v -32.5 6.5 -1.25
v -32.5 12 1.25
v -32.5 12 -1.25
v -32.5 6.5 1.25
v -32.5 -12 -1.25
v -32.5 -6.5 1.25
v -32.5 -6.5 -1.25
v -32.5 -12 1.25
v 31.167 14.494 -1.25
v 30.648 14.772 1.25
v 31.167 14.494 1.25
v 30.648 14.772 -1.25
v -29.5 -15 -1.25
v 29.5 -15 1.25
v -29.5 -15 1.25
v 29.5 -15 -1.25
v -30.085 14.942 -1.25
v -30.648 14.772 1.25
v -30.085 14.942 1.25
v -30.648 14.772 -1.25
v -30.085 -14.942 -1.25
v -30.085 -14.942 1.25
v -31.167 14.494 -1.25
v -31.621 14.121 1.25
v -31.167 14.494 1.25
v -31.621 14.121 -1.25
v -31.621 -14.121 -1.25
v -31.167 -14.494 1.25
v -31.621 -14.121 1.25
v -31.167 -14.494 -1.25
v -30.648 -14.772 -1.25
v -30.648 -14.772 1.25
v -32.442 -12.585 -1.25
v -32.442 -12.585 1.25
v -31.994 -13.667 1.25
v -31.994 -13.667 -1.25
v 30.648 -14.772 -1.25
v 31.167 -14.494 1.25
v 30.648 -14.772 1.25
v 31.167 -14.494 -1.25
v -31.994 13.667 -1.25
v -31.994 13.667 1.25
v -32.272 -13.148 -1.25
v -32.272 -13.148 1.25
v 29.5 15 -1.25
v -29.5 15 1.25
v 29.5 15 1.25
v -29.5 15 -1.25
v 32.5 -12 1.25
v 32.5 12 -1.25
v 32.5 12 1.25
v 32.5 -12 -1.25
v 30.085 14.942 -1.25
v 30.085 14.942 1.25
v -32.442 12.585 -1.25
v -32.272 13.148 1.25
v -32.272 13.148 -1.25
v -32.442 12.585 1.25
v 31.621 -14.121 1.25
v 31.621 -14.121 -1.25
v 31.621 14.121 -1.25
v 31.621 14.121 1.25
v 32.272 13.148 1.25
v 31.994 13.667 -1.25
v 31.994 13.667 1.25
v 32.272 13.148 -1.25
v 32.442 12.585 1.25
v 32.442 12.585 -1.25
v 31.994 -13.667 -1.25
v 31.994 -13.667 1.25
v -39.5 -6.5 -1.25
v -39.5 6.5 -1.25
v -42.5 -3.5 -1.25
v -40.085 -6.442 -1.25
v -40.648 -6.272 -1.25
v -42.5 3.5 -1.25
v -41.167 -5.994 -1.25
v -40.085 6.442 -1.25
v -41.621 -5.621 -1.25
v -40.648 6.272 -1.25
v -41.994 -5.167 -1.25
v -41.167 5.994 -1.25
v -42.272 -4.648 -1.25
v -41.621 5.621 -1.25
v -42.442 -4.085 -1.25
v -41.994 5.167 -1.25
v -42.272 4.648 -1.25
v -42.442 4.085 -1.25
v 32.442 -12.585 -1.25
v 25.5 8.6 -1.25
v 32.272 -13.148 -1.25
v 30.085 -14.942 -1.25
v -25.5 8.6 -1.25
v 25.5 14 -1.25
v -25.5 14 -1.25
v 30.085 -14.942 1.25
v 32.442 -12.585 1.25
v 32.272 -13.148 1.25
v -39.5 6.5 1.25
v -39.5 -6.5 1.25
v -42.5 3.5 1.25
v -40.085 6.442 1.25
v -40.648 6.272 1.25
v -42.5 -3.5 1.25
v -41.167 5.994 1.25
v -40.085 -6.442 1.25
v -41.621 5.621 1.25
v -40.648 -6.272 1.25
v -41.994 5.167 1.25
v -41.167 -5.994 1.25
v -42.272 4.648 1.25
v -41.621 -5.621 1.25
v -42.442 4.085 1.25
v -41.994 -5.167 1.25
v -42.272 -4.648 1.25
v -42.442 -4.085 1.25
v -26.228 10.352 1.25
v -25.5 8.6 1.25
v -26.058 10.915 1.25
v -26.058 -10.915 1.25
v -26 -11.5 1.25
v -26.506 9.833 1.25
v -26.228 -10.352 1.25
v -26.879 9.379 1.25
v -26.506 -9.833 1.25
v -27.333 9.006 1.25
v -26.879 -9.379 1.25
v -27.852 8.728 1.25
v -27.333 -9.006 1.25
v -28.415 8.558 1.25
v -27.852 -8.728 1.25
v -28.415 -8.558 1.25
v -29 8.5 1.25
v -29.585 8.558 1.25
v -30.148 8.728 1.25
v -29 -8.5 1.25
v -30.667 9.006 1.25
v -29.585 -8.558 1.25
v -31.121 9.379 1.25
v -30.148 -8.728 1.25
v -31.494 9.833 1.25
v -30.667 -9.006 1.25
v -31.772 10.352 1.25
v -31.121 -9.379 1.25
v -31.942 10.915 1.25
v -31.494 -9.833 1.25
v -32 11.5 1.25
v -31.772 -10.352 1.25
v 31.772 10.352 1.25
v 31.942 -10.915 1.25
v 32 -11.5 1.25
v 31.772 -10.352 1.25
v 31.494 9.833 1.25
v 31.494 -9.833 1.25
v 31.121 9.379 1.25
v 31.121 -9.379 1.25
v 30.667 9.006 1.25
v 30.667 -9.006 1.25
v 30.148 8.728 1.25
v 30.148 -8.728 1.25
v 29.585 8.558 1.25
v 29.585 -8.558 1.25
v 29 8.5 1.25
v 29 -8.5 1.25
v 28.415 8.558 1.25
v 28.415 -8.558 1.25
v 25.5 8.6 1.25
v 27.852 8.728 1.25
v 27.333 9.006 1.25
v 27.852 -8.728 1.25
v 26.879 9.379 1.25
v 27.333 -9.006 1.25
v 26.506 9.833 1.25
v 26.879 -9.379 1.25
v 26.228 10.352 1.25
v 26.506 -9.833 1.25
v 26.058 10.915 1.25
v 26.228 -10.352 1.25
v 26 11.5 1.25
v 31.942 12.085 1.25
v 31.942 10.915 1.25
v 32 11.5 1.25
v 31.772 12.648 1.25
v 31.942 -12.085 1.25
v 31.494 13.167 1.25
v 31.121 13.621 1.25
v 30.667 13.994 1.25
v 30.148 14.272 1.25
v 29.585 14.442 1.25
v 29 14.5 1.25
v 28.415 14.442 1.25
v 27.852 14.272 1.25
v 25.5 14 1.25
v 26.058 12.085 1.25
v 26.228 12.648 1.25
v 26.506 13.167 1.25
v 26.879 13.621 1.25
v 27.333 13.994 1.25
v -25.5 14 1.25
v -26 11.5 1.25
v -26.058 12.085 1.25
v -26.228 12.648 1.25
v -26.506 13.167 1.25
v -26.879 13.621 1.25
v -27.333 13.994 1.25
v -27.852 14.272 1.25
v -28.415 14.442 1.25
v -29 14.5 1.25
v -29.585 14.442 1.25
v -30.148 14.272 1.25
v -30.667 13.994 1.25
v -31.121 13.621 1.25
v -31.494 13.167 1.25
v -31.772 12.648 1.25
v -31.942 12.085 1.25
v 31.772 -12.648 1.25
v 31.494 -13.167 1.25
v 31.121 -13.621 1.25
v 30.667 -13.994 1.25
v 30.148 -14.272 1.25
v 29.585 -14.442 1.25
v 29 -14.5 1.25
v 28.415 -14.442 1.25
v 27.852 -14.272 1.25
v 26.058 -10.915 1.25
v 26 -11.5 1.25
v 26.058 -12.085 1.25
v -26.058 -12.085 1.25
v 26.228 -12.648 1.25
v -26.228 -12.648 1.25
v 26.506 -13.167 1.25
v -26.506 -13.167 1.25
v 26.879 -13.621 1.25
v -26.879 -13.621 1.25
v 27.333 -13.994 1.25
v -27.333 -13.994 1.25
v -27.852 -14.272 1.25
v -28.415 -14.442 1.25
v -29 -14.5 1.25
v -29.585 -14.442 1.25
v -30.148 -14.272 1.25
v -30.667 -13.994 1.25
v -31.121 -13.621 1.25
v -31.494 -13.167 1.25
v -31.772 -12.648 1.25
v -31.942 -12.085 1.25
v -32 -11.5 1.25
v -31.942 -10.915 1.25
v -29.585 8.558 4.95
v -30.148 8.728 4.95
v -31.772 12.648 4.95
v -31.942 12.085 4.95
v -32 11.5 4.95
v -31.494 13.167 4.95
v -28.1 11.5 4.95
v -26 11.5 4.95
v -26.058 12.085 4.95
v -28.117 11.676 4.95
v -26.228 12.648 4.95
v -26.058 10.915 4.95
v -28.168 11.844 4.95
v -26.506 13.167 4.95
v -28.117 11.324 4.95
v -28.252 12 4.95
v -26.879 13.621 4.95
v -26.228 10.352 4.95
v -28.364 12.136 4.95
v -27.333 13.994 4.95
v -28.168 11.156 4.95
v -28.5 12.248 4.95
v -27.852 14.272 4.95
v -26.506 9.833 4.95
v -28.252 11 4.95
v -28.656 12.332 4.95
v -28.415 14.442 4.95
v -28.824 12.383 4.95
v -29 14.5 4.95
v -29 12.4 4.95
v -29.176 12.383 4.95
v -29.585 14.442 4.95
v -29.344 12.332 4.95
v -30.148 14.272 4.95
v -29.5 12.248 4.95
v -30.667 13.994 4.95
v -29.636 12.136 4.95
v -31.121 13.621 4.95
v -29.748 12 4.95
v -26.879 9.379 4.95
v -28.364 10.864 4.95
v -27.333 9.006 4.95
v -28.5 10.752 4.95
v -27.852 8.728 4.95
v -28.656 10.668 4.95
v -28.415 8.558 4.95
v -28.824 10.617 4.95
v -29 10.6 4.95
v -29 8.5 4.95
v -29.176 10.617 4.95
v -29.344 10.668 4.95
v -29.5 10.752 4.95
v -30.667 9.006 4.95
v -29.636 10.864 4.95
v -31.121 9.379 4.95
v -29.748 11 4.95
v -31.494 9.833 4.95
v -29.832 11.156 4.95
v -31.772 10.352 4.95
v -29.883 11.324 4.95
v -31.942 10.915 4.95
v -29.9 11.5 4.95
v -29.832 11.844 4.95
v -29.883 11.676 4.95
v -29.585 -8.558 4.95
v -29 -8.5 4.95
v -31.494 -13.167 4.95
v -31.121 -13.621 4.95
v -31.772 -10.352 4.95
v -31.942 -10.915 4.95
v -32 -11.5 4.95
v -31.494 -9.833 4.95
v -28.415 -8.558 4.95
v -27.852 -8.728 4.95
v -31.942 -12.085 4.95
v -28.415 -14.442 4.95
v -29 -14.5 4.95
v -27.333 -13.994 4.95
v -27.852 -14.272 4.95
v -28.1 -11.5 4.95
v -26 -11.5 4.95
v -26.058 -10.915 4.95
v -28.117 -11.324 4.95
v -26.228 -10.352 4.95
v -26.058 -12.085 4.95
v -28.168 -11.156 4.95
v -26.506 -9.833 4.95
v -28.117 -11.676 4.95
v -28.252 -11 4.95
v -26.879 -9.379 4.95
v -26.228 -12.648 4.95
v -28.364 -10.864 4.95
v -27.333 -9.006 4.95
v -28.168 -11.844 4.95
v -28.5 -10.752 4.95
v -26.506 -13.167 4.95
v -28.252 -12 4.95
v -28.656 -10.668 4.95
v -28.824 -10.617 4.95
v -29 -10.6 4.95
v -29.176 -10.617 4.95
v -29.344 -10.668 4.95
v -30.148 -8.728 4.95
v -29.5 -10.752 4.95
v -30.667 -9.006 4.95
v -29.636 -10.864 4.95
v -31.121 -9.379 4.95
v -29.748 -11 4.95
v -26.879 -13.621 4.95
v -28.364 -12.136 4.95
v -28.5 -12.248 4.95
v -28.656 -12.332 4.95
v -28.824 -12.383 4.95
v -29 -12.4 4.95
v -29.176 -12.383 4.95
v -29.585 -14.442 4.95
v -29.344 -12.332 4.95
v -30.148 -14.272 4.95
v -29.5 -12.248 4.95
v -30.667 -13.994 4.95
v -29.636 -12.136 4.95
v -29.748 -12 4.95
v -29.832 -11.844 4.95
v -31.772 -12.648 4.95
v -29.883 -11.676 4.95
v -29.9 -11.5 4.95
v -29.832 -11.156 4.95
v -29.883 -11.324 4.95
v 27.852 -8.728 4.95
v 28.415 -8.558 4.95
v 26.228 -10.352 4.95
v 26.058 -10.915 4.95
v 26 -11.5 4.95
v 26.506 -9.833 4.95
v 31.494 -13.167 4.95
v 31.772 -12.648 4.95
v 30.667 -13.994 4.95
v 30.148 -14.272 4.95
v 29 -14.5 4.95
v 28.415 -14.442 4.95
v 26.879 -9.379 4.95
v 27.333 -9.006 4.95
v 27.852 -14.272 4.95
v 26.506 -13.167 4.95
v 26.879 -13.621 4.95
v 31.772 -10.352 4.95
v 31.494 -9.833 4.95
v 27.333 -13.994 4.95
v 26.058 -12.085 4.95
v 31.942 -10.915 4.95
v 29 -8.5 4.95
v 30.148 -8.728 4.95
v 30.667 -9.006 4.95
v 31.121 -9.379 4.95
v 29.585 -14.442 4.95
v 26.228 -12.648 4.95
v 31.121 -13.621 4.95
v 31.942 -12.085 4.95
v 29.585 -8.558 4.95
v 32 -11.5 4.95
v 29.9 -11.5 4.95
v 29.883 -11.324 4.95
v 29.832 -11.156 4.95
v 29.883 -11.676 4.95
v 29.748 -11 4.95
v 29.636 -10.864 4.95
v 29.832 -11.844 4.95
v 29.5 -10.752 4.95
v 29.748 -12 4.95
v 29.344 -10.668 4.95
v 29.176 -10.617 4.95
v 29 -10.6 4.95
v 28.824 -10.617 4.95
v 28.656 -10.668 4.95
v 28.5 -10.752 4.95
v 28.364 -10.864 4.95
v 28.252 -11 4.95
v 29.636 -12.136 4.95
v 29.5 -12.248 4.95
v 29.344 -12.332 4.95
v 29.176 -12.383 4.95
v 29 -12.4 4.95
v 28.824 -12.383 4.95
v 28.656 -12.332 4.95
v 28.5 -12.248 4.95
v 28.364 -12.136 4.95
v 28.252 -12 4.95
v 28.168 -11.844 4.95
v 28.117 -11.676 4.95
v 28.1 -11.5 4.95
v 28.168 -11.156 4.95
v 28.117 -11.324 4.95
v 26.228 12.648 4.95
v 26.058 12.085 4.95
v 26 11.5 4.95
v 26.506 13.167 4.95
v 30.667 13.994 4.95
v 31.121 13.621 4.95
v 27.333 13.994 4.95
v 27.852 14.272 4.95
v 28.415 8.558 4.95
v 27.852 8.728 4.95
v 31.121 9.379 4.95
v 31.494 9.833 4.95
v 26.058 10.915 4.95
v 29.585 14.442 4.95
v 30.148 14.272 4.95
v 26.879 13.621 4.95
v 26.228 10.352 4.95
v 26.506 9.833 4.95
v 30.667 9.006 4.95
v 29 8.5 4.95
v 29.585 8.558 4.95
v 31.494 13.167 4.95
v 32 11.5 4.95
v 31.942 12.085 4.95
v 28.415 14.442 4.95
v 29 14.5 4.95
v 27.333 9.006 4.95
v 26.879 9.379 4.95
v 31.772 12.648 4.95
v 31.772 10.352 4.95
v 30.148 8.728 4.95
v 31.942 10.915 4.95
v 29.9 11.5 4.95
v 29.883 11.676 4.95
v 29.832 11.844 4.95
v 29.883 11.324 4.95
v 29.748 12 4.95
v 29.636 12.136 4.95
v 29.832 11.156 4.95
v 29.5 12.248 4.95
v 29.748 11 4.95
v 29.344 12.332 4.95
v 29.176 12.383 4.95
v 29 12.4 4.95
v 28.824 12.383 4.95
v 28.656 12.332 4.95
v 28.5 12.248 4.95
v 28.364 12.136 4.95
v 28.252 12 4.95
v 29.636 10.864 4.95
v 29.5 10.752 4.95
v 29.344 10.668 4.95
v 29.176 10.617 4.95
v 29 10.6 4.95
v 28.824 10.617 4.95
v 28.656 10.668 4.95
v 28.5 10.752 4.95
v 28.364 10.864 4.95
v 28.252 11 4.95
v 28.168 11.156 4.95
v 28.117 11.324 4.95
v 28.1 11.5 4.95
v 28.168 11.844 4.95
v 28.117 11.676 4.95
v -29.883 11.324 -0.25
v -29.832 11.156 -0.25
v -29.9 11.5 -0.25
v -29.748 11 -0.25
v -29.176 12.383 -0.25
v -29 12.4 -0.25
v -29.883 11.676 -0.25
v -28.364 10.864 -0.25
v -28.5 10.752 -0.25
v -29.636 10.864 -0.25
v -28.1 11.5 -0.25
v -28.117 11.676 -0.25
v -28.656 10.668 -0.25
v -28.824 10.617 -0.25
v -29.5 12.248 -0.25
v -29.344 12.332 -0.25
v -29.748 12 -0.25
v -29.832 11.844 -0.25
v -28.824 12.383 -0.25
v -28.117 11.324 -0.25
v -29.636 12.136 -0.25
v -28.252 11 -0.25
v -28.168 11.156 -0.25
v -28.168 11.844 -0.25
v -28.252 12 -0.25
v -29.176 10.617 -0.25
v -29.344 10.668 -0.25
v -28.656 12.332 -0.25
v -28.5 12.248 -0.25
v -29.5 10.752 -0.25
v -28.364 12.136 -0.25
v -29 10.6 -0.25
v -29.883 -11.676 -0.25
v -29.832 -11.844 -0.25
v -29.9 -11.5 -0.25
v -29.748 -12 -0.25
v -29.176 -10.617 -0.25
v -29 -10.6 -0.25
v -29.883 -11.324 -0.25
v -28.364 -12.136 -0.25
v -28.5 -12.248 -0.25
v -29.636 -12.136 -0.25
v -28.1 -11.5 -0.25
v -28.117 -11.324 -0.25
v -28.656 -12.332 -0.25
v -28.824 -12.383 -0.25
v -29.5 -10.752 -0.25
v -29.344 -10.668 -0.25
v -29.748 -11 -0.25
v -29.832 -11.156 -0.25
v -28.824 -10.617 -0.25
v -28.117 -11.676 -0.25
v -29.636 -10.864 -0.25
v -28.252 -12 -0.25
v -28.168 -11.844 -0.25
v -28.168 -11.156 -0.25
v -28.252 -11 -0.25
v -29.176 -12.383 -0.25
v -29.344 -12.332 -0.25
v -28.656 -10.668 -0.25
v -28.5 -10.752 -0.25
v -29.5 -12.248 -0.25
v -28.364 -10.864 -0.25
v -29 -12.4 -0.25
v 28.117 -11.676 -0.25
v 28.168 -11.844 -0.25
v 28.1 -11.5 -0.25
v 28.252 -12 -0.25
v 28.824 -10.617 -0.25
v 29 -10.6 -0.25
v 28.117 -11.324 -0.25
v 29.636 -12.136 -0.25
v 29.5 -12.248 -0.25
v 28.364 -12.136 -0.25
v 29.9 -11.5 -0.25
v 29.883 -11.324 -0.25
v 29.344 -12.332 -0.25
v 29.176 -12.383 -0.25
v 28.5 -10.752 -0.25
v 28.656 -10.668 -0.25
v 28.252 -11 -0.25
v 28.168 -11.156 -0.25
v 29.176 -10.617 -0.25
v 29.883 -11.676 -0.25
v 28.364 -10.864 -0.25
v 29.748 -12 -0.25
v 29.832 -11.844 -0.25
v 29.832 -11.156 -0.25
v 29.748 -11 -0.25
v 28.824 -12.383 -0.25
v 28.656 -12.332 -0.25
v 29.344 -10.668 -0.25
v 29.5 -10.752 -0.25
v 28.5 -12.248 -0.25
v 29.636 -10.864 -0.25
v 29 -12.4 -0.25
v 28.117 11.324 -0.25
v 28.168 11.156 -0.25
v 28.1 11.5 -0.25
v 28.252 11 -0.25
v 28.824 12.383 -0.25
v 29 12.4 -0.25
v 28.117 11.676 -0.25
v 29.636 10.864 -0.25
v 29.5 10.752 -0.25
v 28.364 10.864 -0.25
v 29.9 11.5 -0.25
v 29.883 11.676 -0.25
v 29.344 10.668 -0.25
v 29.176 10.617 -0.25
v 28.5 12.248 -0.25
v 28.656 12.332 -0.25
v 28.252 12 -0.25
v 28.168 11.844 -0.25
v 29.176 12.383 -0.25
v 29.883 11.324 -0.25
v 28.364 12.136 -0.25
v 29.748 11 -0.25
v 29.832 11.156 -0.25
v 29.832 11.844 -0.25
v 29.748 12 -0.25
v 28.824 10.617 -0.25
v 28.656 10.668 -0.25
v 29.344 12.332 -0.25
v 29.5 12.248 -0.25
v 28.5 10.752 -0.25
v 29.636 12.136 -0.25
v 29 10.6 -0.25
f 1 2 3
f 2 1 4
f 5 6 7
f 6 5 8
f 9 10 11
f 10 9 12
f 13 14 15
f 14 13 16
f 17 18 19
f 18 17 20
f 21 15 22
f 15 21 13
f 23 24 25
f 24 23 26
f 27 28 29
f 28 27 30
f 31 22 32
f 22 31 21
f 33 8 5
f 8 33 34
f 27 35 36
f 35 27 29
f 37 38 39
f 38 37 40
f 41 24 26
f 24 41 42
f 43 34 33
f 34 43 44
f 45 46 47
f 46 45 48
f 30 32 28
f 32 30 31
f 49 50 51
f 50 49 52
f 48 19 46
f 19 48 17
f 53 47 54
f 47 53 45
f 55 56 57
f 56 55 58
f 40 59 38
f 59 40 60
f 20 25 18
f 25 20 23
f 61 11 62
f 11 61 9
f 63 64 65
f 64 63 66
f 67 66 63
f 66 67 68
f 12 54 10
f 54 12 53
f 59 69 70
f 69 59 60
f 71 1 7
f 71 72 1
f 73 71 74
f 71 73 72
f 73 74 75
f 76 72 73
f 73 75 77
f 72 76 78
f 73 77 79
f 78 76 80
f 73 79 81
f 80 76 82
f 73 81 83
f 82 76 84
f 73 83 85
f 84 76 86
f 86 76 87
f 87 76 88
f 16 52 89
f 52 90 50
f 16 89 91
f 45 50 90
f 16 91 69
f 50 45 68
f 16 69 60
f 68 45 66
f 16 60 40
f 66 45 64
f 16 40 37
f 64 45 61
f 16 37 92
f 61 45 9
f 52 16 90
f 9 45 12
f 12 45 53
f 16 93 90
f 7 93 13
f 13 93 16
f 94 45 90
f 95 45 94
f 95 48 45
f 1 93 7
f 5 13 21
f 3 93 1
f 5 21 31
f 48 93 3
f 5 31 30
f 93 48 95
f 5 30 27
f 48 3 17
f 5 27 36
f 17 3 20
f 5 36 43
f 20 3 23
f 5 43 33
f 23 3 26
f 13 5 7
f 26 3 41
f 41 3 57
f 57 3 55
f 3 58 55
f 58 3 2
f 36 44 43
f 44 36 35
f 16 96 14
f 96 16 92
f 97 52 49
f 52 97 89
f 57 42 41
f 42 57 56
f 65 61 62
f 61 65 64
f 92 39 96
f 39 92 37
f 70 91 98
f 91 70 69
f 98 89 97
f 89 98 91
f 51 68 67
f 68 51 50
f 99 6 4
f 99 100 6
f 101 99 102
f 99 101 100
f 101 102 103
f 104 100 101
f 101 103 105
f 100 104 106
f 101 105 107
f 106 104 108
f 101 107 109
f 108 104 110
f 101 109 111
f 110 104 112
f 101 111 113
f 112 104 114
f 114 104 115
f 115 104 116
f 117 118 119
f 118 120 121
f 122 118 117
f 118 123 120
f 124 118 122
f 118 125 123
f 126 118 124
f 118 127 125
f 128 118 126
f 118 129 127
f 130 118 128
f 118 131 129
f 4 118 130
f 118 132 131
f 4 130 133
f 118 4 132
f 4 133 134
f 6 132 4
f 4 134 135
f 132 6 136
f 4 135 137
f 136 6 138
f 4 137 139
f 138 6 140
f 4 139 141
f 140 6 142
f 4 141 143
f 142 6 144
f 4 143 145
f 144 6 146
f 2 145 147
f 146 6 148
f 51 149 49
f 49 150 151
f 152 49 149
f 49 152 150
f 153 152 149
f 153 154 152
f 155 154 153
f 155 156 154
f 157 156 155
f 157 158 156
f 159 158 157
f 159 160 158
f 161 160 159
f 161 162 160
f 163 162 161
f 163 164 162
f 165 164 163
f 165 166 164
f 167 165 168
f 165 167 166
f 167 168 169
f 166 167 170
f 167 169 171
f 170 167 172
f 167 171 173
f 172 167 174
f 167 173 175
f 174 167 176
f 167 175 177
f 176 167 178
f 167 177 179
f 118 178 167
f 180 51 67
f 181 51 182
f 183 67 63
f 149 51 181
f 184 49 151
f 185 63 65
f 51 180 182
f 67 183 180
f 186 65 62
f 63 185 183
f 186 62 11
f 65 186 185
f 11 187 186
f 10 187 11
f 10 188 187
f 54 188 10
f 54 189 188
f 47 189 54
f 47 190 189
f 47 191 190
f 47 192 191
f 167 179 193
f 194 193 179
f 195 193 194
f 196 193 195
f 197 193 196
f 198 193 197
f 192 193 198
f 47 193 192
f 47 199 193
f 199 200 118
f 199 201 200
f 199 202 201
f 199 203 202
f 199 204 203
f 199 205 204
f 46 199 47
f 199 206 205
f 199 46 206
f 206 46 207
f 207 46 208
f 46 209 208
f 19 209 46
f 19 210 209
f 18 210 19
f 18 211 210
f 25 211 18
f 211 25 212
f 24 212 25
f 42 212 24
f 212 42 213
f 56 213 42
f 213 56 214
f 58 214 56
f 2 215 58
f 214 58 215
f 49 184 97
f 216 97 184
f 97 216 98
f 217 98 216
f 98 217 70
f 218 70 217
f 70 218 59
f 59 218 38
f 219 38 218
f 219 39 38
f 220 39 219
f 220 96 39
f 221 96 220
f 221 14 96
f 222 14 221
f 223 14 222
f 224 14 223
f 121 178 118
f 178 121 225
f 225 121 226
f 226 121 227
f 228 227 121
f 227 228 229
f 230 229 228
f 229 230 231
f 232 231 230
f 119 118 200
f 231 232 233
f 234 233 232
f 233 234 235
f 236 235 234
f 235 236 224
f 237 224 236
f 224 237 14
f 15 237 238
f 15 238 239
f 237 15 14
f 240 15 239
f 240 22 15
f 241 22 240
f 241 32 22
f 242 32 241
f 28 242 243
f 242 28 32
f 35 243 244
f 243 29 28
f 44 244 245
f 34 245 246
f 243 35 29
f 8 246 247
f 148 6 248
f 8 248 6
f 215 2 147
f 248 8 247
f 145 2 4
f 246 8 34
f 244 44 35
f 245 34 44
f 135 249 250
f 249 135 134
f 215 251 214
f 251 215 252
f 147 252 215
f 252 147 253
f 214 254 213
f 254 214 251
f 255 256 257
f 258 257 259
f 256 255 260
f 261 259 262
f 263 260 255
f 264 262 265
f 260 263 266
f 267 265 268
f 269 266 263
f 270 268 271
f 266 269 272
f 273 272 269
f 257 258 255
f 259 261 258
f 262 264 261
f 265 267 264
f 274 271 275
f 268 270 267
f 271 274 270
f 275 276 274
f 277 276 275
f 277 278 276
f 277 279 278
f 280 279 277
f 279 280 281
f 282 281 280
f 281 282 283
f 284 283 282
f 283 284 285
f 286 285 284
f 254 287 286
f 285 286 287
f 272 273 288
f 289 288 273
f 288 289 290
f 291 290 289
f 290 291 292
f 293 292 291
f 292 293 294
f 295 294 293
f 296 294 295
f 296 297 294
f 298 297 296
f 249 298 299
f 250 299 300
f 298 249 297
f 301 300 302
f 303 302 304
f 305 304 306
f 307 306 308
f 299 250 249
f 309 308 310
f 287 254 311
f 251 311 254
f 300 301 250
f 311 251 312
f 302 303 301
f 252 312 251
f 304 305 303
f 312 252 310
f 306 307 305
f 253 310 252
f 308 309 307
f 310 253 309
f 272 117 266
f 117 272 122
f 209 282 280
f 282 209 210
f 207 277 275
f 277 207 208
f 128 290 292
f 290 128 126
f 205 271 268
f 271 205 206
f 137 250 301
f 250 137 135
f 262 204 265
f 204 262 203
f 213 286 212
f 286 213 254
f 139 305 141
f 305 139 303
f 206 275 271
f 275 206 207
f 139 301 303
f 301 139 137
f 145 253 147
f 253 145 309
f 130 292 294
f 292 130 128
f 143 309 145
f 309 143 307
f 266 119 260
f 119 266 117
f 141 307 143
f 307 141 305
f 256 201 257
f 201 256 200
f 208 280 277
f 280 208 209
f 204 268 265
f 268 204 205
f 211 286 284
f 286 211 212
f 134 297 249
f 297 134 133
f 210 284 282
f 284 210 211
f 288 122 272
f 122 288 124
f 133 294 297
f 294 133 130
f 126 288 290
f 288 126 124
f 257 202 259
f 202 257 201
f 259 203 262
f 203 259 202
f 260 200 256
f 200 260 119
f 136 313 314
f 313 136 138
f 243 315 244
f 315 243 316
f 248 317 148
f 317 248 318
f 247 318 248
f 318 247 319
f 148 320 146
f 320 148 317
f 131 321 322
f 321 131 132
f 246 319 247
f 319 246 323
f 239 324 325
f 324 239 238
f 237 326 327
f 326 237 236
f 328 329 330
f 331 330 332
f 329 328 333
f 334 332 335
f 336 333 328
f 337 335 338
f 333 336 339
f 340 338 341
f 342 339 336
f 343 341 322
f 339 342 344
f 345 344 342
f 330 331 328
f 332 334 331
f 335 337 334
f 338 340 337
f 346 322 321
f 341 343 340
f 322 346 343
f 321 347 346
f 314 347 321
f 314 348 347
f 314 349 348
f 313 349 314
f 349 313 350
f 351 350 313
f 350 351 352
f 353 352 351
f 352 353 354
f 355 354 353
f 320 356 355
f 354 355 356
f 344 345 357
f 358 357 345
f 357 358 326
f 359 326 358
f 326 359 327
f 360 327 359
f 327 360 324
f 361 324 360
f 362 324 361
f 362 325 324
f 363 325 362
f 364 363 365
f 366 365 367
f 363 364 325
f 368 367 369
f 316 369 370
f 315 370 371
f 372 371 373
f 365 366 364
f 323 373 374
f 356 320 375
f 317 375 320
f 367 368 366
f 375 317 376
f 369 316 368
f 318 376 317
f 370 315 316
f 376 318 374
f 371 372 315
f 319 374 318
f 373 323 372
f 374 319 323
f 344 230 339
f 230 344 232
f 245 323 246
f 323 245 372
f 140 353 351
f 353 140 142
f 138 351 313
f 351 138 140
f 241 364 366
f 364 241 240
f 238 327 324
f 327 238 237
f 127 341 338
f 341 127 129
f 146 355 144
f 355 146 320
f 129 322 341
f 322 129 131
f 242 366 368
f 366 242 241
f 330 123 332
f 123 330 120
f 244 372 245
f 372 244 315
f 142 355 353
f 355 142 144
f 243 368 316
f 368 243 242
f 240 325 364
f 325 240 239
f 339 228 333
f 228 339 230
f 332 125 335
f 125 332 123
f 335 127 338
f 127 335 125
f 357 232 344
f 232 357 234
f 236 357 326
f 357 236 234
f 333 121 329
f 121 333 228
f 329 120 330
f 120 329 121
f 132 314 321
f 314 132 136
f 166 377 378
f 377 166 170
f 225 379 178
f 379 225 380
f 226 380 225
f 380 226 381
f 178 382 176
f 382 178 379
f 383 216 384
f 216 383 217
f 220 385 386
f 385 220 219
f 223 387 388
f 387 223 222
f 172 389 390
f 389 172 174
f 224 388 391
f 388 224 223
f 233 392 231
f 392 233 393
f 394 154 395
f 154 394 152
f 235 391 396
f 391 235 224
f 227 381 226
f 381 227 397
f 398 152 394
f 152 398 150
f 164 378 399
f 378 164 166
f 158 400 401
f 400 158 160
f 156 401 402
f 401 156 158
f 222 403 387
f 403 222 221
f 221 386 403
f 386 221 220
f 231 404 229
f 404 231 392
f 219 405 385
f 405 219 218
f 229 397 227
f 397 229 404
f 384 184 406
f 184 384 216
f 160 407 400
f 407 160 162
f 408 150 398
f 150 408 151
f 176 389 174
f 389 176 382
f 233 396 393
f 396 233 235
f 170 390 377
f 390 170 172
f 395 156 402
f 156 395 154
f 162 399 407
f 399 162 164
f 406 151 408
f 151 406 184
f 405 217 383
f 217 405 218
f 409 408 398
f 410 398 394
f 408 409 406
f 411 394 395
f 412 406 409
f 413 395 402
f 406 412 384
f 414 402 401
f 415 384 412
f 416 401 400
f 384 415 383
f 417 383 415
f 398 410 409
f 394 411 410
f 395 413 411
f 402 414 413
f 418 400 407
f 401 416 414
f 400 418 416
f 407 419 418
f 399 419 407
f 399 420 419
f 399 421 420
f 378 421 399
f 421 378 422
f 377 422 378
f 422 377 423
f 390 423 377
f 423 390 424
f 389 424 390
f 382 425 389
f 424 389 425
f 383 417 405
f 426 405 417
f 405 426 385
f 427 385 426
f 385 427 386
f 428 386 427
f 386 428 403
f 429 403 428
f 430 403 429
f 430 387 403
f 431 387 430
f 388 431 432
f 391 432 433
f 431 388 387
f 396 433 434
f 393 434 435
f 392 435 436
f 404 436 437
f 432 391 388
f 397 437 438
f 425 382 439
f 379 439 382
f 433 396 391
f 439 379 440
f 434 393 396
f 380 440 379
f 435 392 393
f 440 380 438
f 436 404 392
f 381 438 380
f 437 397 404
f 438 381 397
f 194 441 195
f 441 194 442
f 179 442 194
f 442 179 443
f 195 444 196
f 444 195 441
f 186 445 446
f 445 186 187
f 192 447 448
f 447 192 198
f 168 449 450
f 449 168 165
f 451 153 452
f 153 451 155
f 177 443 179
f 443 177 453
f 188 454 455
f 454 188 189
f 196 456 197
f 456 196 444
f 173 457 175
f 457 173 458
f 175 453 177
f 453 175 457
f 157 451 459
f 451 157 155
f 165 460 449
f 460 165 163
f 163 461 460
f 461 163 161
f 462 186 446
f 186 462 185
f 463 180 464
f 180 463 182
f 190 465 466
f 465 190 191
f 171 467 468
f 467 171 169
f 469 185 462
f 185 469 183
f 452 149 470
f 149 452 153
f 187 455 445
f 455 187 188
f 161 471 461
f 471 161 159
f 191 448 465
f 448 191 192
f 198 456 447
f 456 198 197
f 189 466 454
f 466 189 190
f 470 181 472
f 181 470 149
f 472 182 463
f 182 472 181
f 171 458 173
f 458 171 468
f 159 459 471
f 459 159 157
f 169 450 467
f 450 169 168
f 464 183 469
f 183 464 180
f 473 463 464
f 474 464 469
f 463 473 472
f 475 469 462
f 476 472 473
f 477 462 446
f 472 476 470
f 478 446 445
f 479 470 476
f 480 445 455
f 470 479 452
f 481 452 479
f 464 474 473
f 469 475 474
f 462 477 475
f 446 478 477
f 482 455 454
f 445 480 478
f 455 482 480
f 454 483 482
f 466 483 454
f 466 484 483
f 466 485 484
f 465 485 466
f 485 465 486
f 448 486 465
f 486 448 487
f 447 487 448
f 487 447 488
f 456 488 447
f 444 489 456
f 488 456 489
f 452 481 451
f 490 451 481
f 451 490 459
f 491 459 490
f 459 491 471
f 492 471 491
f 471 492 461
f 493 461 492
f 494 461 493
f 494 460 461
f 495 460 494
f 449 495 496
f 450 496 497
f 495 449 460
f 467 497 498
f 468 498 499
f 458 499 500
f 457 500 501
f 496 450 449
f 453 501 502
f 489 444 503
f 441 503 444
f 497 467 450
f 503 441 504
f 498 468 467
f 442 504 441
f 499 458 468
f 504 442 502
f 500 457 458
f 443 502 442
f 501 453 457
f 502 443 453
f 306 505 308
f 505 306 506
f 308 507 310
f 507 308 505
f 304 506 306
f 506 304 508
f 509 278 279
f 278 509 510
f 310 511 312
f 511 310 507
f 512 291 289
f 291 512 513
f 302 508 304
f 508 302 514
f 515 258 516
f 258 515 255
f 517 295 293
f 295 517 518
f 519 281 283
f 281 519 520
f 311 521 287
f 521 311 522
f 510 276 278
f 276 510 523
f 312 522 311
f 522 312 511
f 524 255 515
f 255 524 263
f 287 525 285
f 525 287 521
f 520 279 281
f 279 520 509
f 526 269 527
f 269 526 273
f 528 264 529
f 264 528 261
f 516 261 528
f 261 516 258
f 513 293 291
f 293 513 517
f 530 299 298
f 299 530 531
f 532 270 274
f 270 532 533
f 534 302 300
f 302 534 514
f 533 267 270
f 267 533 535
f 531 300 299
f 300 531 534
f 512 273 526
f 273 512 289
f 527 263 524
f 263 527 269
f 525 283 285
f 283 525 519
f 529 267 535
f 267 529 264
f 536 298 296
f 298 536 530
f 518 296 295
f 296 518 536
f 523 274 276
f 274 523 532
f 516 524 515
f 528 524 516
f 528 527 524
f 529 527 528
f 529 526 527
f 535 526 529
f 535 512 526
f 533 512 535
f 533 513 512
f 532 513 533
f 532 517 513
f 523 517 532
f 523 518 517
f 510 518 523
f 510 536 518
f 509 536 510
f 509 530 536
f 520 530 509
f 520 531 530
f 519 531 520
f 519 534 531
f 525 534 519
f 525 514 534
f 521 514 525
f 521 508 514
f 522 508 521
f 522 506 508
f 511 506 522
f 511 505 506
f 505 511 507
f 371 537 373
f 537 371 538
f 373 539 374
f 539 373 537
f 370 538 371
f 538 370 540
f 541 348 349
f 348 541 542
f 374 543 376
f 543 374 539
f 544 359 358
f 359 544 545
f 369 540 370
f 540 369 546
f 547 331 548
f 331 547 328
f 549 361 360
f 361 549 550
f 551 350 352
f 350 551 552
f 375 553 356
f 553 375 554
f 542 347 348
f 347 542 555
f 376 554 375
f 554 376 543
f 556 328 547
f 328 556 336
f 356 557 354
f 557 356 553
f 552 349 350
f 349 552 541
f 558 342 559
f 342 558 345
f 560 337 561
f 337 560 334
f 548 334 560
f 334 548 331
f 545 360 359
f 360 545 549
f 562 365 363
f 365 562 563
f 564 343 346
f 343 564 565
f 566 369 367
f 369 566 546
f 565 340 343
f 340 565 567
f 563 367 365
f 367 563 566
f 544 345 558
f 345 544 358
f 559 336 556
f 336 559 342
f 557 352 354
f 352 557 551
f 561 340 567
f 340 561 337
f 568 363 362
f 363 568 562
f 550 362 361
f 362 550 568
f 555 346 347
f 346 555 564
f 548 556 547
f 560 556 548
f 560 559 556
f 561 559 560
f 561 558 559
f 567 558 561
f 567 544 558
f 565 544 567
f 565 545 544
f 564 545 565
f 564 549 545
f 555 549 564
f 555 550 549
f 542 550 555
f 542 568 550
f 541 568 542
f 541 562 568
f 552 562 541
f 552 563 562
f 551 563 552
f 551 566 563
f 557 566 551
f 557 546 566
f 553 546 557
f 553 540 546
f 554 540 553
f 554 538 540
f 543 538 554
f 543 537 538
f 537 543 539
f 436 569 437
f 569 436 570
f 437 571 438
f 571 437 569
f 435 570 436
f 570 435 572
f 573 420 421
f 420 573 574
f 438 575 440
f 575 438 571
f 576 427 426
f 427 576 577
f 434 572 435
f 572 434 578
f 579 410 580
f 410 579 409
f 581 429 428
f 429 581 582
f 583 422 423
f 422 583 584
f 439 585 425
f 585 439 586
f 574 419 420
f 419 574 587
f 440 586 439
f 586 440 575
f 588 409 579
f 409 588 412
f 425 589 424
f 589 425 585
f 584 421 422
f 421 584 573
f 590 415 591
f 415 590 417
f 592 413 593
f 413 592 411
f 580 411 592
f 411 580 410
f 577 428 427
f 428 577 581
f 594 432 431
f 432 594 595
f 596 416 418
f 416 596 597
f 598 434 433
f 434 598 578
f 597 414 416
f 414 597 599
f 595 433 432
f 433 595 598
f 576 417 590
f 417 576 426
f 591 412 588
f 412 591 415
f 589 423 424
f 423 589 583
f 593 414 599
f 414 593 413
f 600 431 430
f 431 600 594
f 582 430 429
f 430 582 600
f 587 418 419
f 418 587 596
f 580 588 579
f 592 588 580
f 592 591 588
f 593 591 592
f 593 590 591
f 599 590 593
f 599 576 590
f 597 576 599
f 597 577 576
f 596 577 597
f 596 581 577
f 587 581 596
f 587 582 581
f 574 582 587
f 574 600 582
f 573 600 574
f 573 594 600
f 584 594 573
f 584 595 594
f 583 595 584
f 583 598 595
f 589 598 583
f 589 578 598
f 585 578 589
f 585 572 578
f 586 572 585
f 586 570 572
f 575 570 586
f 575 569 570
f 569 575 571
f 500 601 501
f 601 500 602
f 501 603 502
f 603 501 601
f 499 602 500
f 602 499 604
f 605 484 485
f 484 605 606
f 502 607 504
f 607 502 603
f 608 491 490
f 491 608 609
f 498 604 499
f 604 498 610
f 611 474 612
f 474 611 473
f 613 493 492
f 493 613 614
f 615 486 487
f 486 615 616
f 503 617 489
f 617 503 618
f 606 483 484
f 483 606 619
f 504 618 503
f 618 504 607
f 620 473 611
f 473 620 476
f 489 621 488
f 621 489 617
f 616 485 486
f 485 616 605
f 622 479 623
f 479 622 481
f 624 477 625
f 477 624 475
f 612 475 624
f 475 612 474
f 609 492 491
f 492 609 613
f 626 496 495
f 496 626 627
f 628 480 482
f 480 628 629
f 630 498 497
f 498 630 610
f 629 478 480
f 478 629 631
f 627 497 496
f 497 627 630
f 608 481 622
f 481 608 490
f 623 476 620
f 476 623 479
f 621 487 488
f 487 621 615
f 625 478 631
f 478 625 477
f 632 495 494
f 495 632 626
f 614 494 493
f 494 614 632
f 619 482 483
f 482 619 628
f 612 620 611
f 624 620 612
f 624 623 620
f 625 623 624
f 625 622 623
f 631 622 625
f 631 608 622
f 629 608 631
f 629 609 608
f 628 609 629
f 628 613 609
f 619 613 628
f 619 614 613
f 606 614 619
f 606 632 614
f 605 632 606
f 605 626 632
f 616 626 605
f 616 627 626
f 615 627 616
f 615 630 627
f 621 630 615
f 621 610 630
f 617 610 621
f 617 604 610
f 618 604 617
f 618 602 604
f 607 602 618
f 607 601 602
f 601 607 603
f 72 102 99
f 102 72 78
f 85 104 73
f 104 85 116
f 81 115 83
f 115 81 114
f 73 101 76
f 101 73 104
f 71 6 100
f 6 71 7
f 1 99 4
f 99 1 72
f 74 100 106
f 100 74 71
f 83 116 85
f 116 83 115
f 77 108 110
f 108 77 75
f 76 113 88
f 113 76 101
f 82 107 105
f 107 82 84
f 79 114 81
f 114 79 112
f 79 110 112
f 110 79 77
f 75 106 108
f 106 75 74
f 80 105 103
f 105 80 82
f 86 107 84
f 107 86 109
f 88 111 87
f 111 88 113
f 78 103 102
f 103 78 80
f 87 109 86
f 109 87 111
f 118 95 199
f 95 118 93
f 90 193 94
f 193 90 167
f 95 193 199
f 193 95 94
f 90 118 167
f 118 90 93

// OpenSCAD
// Generated by SolidPython 1.0.4 on 2021-01-16 14:37:19


rotate(a = [0, 180, 0]) {
	difference() {
		union() {
			difference() {
				union() {
					translate(v = [-32.5000000000, -15.0000000000, 0]) {
						hull() {
							translate(v = [3, 0, 0]) {
								translate(v = [0, 3, 0]) {
									cylinder($fn = 32, center = true, h = 2.5000000000, r = 3);
								}
							}
							translate(v = [62, 0, 0]) {
								translate(v = [0, 3, 0]) {
									cylinder($fn = 32, center = true, h = 2.5000000000, r = 3);
								}
							}
							translate(v = [3, 0, 0]) {
								translate(v = [0, 27, 0]) {
									cylinder($fn = 32, center = true, h = 2.5000000000, r = 3);
								}
							}
							translate(v = [62, 0, 0]) {
								translate(v = [0, 27, 0]) {
									cylinder($fn = 32, center = true, h = 2.5000000000, r = 3);
								}
							}
						}
					}
					translate(v = [29.0000000000, 11.5000000000, -4.9500000000]) {
						cylinder($fn = 32, center = false, d = 6, h = 3.7000000000);
					}
					translate(v = [29.0000000000, -11.5000000000, -4.9500000000]) {
						cylinder($fn = 32, center = false, d = 6, h = 3.7000000000);
					}
					translate(v = [-29.0000000000, -11.5000000000, -4.9500000000]) {
						cylinder($fn = 32, center = false, d = 6, h = 3.7000000000);
					}
					translate(v = [-29.0000000000, 11.5000000000, -4.9500000000]) {
						cylinder($fn = 32, center = false, d = 6, h = 3.7000000000);
					}
				}
				translate(v = [29.0000000000, 11.5000000000, -4.9500000000]) {
					rotate(a = [180, 0, 0]) {
						union() {
							cylinder($fn = 32, d = 4.1000000000, h = 2);
							translate(v = [0, 0, -5.2000000000]) {
								cylinder($fn = 32, d = 1.8000000000, h = 5.2000000000);
							}
						}
					}
				}
				translate(v = [29.0000000000, -11.5000000000, -4.9500000000]) {
					rotate(a = [180, 0, 0]) {
						union() {
							cylinder($fn = 32, d = 4.1000000000, h = 2);
							translate(v = [0, 0, -5.2000000000]) {
								cylinder($fn = 32, d = 1.8000000000, h = 5.2000000000);
							}
						}
					}
				}
				translate(v = [-29.0000000000, -11.5000000000, -4.9500000000]) {
					rotate(a = [180, 0, 0]) {
						union() {
							cylinder($fn = 32, d = 4.1000000000, h = 2);
							translate(v = [0, 0, -5.2000000000]) {
								cylinder($fn = 32, d = 1.8000000000, h = 5.2000000000);
							}
						}
					}
				}
				translate(v = [-29.0000000000, 11.5000000000, -4.9500000000]) {
					rotate(a = [180, 0, 0]) {
						union() {
							cylinder($fn = 32, d = 4.1000000000, h = 2);
							translate(v = [0, 0, -5.2000000000]) {
								cylinder($fn = 32, d = 1.8000000000, h = 5.2000000000);
							}
						}
					}
				}
			}
			translate(v = [10, 0, 0]) {
				translate(v = [-32.5000000000, -6.5000000000, 0]) {
					hull() {
						translate(v = [3, 0, 0]) {
							translate(v = [0, 3, 0]) {
								cylinder($fn = 32, center = true, h = 2.5000000000, r = 3);
							}
						}
						translate(v = [62, 0, 0]) {
							translate(v = [0, 3, 0]) {
								cylinder($fn = 32, center = true, h = 2.5000000000, r = 3);
							}
						}
						translate(v = [3, 0, 0]) {
							translate(v = [0, 10, 0]) {
								cylinder($fn = 32, center = true, h = 2.5000000000, r = 3);
							}
						}
						translate(v = [62, 0, 0]) {
							translate(v = [0, 10, 0]) {
								cylinder($fn = 32, center = true, h = 2.5000000000, r = 3);
							}
						}
					}
				}
			}
		}
		translate(v = [0, 11.3000000000, 0]) {
			cube(center = true, size = [51, 5.4000000000, 2.5000000000]);
		}
	}
}
/***********************************************
*********      SolidPython code:      **********
************************************************
 
from solid.utils import *
import solid
import os
from screw import MachineScrew,ScrewType
import utils
from const import *

ZERO_LENGTH=65
ZERO_WIDTH=30
ZERO_PLATE_HEIGHT=2.5
ZERO_SCREW_OFF = 3.5
ZERO_PLATE_TO_EDGE = (ZERO_LENGTH-ADAPTER_SIDE)/2
ZERO_SUPPORT_HEIGHT_TOP = 2.5
ZERO_SUPPORT_HEIGHT_BOTTOM = 2.5

def _zero_plate_base(support_height=0, screw_length=16, screw_offset=0, height=ZERO_PLATE_HEIGHT) -> solid.OpenSCADObject:
    support = solid.cylinder(d=6,h=support_height,center=False,segments=32)
    support_z = -support_height - height/2
    plate = utils.cube_chamfered([ZERO_LENGTH,ZERO_WIDTH,height],center=True,r=3),
    if support_height != 0:
        plate = solid.union()(
            plate,
            translate((ZERO_LENGTH/2-ZERO_SCREW_OFF,ZERO_WIDTH/2-ZERO_SCREW_OFF,support_z))(support),
            translate((ZERO_LENGTH/2-ZERO_SCREW_OFF,-ZERO_WIDTH/2+ZERO_SCREW_OFF,support_z))(support),
            translate((-ZERO_LENGTH/2+ZERO_SCREW_OFF,-ZERO_WIDTH/2+ZERO_SCREW_OFF,support_z))(support),
            translate((-ZERO_LENGTH/2+ZERO_SCREW_OFF,ZERO_WIDTH/2-ZERO_SCREW_OFF,support_z))(support),
        )
    return plate

def pi_zero_frontplate(gpio_opening=True,flex_cover=True, support_height=3.7):
    height = ZERO_PLATE_HEIGHT
    plate = _zero_plate_base(support_height=support_height, screw_offset=0, height=height)
    screw_obj = MachineScrew(type=ScrewType.M2_HEX,length=height+support_height-1,clearance=-0.2)
    screw = rotate([180,0,0])(screw_obj())
    plate = solid.difference()(
        plate,
        translate((ZERO_LENGTH/2-ZERO_SCREW_OFF,ZERO_WIDTH/2-ZERO_SCREW_OFF,-height/2-support_height))(screw),
        translate((ZERO_LENGTH/2-ZERO_SCREW_OFF,-ZERO_WIDTH/2+ZERO_SCREW_OFF,-height/2-support_height))(screw),
        translate((-ZERO_LENGTH/2+ZERO_SCREW_OFF,-ZERO_WIDTH/2+ZERO_SCREW_OFF,-height/2-support_height))(screw),
        translate((-ZERO_LENGTH/2+ZERO_SCREW_OFF,ZERO_WIDTH/2-ZERO_SCREW_OFF,-height/2-support_height))(screw),
    )
    if flex_cover:
        flex_cover = utils.cube_chamfered([ZERO_LENGTH,13,ZERO_PLATE_HEIGHT],center=True,r=3)
        plate += translate((10,0,0))(flex_cover)
    if gpio_opening:
        gpio_opening = translate((0,ZERO_WIDTH/2-GPIO_WIDTH/2-GPIO_OFFSET,0))(solid.cube([GPIO_LENGTH,GPIO_WIDTH,height],center=True))
        plate -= gpio_opening 
    return plate

def pi_zero_backplate():
    zero_plate = _zero_plate_base(support_height=ZERO_SUPPORT_HEIGHT_TOP, screw_offset=-.5)
    camera_plate = utils.cube_chamfered([ADAPTER_SIDE,ADAPTER_SIDE,ZERO_PLATE_HEIGHT],center=True,r=3)
    camera_plate = camera_plate + zero_plate
    screw_obj = MachineScrew(type=ScrewType.M2_HEX,length=ZERO_PLATE_HEIGHT*2,clearance=0)
    screw_bottom = rotate([180,0,0])(screw_obj())
    screw_top = MachineScrew(type=ScrewType.M2_HEX,length=ZERO_PLATE_HEIGHT*2,overhang=True)()
    camera_plate = solid.difference()(
        camera_plate,
        # Upper plate mount screws
        translate((ADAPTER_SIDE/2-ADAPTER_HOLE_TO_SIDE,ADAPTER_SIDE/2-ADAPTER_HOLE_TO_SIDE,-ZERO_PLATE_HEIGHT/2))(screw_bottom),
        translate((-ADAPTER_SIDE/2+ADAPTER_HOLE_TO_SIDE,ADAPTER_SIDE/2-ADAPTER_HOLE_TO_SIDE,-ZERO_PLATE_HEIGHT/2))(screw_bottom),
        translate((ADAPTER_SIDE/2-ADAPTER_HOLE_TO_SIDE,-ADAPTER_SIDE/2+ADAPTER_HOLE_TO_SIDE,-ZERO_PLATE_HEIGHT/2))(screw_bottom),
        translate((-ADAPTER_SIDE/2+ADAPTER_HOLE_TO_SIDE,-ADAPTER_SIDE/2+ADAPTER_HOLE_TO_SIDE,-ZERO_PLATE_HEIGHT/2))(screw_bottom),
        # Lens ring mount screws
        translate((0,CS_LENS_RING_NUT_OFFSET,-ZERO_PLATE_HEIGHT/2))(screw_bottom),
        translate((0,-CS_LENS_RING_NUT_OFFSET,-ZERO_PLATE_HEIGHT/2))(screw_bottom),
        # Pi mount screws
        translate((ZERO_LENGTH/2-ZERO_SCREW_OFF,ZERO_WIDTH/2-ZERO_SCREW_OFF,-.5))(screw_top),
        translate((ZERO_LENGTH/2-ZERO_SCREW_OFF,-ZERO_WIDTH/2+ZERO_SCREW_OFF,-.5))(screw_top),
        translate((-ZERO_LENGTH/2+ZERO_SCREW_OFF,-ZERO_WIDTH/2+ZERO_SCREW_OFF,-.5))(screw_top),
        translate((-ZERO_LENGTH/2+ZERO_SCREW_OFF,ZERO_WIDTH/2-ZERO_SCREW_OFF,-.5))(screw_top),
        # flex cable opening
        translate((ZERO_LENGTH/2-ZERO_PLATE_TO_EDGE/2,0,0))(cube([ZERO_PLATE_TO_EDGE,13,ZERO_PLATE_HEIGHT],center=True))
    )
    # flex cable cover
    flex_cover = utils.cube_chamfered([ZERO_LENGTH,13,ZERO_PLATE_HEIGHT-1.5],center=True,r=3)
    camera_plate += translate((10,0,0.75))(flex_cover)
    camera_plate -= translate((ADAPTER_SIDE/2-1.5,0,0))(cube([3,13,ZERO_PLATE_HEIGHT],center=True))
    camera_plate = rotate((180,0,0))(camera_plate)
    return camera_plate

if __name__ == "__main__":
    path = 'scad/board-plates'
    os.makedirs(path, exist_ok=True)
    plate = pi_zero_frontplate()
    plate = rotate((0,180,0))(plate)
    filename = 'pi_zero_frontplate.scad'
    solid.scad_render_to_file(plate, os.path.join(path,filename))
    plate = pi_zero_backplate()
    filename = 'pi_zero_backplate.scad'
    solid.scad_render_to_file(plate, os.path.join(path,filename)) 
 
************************************************/
